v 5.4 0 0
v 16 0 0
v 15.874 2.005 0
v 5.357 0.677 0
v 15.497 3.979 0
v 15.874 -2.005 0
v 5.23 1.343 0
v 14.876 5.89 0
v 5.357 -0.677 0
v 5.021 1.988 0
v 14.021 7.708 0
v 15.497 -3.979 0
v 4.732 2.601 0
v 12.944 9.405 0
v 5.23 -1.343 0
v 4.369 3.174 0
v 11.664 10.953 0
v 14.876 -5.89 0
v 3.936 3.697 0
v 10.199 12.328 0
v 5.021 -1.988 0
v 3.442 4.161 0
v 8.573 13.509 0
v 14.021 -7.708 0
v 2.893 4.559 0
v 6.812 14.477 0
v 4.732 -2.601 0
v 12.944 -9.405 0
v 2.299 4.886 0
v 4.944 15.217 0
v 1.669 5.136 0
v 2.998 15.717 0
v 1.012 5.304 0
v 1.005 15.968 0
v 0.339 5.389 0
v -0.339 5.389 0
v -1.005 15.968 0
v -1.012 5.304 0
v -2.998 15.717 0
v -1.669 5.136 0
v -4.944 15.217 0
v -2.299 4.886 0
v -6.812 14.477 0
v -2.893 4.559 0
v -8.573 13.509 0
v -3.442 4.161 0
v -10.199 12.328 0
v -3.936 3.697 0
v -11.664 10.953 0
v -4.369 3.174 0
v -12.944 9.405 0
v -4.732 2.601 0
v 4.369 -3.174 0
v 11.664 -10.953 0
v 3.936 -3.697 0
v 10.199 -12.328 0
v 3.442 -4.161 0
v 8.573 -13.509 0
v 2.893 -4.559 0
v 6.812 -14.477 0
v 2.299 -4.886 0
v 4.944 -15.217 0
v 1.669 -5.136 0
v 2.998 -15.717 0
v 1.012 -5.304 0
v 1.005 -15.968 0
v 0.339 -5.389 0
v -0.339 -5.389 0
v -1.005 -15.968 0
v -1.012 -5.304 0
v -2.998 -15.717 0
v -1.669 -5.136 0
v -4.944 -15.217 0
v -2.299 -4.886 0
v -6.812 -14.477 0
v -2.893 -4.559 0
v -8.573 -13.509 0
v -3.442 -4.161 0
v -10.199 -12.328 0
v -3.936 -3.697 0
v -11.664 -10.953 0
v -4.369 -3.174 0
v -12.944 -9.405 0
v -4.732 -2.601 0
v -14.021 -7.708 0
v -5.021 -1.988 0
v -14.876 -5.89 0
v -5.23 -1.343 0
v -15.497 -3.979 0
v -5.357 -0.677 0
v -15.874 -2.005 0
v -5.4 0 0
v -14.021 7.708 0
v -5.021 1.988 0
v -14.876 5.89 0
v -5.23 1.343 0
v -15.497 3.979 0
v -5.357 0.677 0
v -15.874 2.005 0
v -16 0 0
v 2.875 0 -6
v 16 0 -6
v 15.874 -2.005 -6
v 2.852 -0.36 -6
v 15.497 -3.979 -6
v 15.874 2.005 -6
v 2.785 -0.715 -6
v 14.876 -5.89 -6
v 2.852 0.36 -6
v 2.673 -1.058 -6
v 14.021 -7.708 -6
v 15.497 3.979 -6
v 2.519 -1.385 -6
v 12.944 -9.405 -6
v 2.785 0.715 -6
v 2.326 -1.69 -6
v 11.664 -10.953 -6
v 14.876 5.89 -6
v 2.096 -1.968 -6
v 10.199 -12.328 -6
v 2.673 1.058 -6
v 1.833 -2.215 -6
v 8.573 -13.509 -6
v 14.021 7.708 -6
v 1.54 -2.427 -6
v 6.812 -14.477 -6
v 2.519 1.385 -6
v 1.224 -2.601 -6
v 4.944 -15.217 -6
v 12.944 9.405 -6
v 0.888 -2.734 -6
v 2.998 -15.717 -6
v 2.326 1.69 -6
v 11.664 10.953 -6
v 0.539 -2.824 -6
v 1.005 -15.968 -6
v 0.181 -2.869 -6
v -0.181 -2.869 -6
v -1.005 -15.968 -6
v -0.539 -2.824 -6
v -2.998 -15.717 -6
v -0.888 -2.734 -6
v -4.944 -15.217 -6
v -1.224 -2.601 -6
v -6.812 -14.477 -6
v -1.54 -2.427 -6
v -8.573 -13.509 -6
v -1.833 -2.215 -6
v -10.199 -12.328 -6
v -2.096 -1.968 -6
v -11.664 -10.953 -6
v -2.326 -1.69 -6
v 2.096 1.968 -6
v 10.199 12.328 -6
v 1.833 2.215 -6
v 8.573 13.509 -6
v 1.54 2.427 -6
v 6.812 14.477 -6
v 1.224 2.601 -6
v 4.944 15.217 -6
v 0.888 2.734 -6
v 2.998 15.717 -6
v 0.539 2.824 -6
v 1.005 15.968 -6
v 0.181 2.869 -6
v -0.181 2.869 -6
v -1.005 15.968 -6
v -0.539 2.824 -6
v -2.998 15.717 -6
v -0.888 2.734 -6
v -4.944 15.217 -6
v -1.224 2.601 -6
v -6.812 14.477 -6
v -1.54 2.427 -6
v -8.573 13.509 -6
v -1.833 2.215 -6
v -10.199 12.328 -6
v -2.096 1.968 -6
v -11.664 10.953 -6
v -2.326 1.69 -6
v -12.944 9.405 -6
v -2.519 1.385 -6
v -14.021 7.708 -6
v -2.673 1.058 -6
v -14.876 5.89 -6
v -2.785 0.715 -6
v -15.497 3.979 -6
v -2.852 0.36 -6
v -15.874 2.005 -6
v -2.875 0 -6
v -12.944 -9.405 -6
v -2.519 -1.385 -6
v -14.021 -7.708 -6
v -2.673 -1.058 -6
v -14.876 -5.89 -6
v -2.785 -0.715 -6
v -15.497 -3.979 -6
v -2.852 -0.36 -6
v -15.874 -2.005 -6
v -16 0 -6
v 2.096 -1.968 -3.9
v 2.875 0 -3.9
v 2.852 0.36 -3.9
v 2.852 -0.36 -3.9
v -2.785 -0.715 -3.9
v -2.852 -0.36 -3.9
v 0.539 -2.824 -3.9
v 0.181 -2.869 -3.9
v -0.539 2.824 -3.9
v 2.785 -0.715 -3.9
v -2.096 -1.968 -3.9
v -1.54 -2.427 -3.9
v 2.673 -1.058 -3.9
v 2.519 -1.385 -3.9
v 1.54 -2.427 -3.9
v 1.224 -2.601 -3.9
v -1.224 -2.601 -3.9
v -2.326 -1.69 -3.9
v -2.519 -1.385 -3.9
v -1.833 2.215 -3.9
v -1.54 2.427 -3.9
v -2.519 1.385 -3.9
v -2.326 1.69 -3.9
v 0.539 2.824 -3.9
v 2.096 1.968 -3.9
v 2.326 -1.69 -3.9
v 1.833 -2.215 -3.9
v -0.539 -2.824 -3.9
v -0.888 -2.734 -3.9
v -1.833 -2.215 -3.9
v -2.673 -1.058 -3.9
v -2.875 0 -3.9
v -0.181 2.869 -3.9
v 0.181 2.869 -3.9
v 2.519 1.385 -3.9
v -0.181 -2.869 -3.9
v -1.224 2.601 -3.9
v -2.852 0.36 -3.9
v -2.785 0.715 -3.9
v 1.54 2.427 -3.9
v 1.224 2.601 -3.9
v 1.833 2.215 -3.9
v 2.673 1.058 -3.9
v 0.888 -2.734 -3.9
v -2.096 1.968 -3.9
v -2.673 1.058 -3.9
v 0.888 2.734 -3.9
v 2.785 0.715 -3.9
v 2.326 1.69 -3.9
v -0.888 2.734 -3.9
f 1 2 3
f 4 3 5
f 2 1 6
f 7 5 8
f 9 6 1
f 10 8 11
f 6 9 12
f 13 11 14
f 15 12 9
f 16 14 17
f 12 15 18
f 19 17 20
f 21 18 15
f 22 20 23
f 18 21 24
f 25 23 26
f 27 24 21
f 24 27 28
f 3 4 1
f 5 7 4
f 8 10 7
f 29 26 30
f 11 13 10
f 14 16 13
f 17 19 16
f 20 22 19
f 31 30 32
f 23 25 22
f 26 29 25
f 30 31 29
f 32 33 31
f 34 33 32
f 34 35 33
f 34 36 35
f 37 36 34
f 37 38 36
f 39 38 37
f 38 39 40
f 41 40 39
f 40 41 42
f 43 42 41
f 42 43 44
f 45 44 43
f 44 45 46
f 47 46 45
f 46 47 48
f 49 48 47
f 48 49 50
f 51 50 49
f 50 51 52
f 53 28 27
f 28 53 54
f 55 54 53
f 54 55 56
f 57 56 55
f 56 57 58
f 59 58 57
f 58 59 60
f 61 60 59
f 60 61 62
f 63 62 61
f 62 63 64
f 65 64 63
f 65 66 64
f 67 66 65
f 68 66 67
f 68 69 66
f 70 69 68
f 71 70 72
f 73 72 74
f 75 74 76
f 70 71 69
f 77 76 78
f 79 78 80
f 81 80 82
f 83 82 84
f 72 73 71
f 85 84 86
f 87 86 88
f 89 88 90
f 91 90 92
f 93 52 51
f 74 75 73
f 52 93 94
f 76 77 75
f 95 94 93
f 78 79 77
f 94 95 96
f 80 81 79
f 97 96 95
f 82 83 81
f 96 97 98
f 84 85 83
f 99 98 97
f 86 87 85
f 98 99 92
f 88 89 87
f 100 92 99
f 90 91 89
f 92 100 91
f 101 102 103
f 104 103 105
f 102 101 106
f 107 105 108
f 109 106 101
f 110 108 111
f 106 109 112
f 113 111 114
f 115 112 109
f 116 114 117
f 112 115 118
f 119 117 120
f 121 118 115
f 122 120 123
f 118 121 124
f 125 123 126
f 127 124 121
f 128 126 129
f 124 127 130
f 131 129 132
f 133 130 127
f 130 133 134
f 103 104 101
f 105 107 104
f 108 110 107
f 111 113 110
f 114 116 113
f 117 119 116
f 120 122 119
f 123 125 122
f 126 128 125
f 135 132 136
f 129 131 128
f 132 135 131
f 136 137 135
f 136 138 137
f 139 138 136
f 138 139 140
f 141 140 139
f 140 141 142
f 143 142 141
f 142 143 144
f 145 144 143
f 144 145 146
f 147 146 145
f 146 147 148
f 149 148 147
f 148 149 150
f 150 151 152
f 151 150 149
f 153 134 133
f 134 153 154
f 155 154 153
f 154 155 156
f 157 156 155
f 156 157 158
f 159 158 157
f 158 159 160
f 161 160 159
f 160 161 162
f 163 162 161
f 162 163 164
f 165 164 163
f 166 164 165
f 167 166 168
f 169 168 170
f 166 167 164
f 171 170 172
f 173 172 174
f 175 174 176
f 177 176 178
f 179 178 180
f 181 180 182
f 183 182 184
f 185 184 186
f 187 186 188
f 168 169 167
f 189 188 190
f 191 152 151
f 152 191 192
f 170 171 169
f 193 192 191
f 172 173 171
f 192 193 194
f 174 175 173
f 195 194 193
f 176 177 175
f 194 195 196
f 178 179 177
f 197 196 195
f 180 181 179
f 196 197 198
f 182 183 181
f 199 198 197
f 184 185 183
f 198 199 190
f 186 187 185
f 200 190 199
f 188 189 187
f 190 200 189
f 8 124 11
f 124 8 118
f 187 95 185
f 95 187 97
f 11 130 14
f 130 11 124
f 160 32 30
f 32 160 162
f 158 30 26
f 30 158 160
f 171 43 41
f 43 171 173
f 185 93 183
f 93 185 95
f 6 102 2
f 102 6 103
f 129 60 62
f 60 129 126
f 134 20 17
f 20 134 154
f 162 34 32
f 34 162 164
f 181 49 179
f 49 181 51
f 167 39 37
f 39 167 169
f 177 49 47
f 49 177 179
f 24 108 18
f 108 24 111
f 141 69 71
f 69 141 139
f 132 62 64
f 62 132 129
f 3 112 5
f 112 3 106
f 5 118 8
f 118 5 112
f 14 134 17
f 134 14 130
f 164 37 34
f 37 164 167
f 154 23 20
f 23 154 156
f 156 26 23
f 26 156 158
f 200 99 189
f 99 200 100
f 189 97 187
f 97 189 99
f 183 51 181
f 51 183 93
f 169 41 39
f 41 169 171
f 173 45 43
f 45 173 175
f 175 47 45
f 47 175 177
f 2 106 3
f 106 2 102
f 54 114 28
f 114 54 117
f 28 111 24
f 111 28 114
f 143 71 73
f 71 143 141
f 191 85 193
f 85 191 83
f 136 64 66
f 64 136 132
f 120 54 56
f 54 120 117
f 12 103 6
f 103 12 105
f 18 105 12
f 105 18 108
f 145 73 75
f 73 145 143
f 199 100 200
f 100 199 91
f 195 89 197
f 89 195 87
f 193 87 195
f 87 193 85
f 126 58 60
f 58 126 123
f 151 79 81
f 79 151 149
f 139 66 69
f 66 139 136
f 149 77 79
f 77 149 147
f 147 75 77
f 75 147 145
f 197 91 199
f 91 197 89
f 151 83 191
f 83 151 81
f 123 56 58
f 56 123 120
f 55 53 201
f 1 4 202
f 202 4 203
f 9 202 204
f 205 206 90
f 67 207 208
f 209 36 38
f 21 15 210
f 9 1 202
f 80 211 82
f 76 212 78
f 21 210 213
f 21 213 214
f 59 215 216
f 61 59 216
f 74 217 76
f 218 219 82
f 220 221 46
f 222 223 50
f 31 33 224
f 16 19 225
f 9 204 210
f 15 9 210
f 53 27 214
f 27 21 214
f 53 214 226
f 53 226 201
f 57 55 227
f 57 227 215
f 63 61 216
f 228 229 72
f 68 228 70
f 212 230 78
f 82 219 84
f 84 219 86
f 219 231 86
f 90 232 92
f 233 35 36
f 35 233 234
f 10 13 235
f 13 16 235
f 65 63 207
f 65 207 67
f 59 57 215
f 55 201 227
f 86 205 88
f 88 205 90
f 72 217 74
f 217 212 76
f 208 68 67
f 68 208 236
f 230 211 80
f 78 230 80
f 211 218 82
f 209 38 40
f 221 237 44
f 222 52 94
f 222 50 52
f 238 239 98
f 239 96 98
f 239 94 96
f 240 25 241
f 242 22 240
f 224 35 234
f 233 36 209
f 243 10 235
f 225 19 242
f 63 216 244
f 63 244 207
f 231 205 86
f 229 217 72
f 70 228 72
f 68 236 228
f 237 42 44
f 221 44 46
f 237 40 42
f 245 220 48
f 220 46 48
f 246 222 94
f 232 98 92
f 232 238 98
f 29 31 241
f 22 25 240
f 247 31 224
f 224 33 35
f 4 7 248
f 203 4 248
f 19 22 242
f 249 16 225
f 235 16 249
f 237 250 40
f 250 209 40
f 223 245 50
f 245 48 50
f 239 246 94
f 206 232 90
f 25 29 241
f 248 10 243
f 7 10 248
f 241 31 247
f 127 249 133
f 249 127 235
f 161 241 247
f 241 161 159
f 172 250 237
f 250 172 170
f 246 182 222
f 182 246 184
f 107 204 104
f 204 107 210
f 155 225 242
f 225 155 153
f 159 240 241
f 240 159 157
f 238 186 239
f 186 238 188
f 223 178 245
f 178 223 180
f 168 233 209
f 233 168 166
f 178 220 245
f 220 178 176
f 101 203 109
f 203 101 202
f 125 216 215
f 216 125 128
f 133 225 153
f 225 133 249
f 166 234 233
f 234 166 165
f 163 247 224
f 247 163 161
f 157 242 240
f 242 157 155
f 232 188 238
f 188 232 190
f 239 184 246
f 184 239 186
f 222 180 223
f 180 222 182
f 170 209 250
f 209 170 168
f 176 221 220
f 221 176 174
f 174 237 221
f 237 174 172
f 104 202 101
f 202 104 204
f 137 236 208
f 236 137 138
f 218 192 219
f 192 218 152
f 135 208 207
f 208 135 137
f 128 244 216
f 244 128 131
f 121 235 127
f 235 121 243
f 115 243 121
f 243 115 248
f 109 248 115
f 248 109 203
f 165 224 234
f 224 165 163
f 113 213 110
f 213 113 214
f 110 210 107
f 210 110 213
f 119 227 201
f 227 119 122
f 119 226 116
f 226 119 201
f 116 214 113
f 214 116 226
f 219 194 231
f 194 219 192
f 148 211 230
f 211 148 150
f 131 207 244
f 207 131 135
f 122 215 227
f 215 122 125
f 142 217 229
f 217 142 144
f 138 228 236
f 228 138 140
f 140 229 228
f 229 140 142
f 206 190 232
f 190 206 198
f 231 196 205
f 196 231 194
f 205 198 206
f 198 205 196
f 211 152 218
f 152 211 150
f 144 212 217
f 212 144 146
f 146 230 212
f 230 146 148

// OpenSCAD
$fn = 50;


difference() {
	union() {
		translate(v = [0, 0, -6.0000000000]) {
			cylinder(h = 6, r = 7.0000000000);
		}
		translate(v = [0, 0, -6.0000000000]) {
			cylinder(h = 6, r = 16.0000000000);
		}
	}
	union() {
		translate(v = [0, 0, 0]) {
			rotate(a = [0, 0, 0]) {
				difference() {
					union() {
						#translate(v = [0, 0, -6.0000000000]) {
							cylinder(h = 6, r = 2.6000000000);
						}
						#translate(v = [0, 0, -3.9000000000]) {
							cylinder(h = 3.9000000000, r1 = 2.8750000000, r2 = 5.4000000000);
						}
						#translate(v = [0, 0, -6.0000000000]) {
							cylinder(h = 6, r = 2.8750000000);
						}
						#translate(v = [0, 0, -6.0000000000]) {
							cylinder(h = 6, r = 2.6000000000);
						}
					}
					union();
				}
			}
		}
	}
}
